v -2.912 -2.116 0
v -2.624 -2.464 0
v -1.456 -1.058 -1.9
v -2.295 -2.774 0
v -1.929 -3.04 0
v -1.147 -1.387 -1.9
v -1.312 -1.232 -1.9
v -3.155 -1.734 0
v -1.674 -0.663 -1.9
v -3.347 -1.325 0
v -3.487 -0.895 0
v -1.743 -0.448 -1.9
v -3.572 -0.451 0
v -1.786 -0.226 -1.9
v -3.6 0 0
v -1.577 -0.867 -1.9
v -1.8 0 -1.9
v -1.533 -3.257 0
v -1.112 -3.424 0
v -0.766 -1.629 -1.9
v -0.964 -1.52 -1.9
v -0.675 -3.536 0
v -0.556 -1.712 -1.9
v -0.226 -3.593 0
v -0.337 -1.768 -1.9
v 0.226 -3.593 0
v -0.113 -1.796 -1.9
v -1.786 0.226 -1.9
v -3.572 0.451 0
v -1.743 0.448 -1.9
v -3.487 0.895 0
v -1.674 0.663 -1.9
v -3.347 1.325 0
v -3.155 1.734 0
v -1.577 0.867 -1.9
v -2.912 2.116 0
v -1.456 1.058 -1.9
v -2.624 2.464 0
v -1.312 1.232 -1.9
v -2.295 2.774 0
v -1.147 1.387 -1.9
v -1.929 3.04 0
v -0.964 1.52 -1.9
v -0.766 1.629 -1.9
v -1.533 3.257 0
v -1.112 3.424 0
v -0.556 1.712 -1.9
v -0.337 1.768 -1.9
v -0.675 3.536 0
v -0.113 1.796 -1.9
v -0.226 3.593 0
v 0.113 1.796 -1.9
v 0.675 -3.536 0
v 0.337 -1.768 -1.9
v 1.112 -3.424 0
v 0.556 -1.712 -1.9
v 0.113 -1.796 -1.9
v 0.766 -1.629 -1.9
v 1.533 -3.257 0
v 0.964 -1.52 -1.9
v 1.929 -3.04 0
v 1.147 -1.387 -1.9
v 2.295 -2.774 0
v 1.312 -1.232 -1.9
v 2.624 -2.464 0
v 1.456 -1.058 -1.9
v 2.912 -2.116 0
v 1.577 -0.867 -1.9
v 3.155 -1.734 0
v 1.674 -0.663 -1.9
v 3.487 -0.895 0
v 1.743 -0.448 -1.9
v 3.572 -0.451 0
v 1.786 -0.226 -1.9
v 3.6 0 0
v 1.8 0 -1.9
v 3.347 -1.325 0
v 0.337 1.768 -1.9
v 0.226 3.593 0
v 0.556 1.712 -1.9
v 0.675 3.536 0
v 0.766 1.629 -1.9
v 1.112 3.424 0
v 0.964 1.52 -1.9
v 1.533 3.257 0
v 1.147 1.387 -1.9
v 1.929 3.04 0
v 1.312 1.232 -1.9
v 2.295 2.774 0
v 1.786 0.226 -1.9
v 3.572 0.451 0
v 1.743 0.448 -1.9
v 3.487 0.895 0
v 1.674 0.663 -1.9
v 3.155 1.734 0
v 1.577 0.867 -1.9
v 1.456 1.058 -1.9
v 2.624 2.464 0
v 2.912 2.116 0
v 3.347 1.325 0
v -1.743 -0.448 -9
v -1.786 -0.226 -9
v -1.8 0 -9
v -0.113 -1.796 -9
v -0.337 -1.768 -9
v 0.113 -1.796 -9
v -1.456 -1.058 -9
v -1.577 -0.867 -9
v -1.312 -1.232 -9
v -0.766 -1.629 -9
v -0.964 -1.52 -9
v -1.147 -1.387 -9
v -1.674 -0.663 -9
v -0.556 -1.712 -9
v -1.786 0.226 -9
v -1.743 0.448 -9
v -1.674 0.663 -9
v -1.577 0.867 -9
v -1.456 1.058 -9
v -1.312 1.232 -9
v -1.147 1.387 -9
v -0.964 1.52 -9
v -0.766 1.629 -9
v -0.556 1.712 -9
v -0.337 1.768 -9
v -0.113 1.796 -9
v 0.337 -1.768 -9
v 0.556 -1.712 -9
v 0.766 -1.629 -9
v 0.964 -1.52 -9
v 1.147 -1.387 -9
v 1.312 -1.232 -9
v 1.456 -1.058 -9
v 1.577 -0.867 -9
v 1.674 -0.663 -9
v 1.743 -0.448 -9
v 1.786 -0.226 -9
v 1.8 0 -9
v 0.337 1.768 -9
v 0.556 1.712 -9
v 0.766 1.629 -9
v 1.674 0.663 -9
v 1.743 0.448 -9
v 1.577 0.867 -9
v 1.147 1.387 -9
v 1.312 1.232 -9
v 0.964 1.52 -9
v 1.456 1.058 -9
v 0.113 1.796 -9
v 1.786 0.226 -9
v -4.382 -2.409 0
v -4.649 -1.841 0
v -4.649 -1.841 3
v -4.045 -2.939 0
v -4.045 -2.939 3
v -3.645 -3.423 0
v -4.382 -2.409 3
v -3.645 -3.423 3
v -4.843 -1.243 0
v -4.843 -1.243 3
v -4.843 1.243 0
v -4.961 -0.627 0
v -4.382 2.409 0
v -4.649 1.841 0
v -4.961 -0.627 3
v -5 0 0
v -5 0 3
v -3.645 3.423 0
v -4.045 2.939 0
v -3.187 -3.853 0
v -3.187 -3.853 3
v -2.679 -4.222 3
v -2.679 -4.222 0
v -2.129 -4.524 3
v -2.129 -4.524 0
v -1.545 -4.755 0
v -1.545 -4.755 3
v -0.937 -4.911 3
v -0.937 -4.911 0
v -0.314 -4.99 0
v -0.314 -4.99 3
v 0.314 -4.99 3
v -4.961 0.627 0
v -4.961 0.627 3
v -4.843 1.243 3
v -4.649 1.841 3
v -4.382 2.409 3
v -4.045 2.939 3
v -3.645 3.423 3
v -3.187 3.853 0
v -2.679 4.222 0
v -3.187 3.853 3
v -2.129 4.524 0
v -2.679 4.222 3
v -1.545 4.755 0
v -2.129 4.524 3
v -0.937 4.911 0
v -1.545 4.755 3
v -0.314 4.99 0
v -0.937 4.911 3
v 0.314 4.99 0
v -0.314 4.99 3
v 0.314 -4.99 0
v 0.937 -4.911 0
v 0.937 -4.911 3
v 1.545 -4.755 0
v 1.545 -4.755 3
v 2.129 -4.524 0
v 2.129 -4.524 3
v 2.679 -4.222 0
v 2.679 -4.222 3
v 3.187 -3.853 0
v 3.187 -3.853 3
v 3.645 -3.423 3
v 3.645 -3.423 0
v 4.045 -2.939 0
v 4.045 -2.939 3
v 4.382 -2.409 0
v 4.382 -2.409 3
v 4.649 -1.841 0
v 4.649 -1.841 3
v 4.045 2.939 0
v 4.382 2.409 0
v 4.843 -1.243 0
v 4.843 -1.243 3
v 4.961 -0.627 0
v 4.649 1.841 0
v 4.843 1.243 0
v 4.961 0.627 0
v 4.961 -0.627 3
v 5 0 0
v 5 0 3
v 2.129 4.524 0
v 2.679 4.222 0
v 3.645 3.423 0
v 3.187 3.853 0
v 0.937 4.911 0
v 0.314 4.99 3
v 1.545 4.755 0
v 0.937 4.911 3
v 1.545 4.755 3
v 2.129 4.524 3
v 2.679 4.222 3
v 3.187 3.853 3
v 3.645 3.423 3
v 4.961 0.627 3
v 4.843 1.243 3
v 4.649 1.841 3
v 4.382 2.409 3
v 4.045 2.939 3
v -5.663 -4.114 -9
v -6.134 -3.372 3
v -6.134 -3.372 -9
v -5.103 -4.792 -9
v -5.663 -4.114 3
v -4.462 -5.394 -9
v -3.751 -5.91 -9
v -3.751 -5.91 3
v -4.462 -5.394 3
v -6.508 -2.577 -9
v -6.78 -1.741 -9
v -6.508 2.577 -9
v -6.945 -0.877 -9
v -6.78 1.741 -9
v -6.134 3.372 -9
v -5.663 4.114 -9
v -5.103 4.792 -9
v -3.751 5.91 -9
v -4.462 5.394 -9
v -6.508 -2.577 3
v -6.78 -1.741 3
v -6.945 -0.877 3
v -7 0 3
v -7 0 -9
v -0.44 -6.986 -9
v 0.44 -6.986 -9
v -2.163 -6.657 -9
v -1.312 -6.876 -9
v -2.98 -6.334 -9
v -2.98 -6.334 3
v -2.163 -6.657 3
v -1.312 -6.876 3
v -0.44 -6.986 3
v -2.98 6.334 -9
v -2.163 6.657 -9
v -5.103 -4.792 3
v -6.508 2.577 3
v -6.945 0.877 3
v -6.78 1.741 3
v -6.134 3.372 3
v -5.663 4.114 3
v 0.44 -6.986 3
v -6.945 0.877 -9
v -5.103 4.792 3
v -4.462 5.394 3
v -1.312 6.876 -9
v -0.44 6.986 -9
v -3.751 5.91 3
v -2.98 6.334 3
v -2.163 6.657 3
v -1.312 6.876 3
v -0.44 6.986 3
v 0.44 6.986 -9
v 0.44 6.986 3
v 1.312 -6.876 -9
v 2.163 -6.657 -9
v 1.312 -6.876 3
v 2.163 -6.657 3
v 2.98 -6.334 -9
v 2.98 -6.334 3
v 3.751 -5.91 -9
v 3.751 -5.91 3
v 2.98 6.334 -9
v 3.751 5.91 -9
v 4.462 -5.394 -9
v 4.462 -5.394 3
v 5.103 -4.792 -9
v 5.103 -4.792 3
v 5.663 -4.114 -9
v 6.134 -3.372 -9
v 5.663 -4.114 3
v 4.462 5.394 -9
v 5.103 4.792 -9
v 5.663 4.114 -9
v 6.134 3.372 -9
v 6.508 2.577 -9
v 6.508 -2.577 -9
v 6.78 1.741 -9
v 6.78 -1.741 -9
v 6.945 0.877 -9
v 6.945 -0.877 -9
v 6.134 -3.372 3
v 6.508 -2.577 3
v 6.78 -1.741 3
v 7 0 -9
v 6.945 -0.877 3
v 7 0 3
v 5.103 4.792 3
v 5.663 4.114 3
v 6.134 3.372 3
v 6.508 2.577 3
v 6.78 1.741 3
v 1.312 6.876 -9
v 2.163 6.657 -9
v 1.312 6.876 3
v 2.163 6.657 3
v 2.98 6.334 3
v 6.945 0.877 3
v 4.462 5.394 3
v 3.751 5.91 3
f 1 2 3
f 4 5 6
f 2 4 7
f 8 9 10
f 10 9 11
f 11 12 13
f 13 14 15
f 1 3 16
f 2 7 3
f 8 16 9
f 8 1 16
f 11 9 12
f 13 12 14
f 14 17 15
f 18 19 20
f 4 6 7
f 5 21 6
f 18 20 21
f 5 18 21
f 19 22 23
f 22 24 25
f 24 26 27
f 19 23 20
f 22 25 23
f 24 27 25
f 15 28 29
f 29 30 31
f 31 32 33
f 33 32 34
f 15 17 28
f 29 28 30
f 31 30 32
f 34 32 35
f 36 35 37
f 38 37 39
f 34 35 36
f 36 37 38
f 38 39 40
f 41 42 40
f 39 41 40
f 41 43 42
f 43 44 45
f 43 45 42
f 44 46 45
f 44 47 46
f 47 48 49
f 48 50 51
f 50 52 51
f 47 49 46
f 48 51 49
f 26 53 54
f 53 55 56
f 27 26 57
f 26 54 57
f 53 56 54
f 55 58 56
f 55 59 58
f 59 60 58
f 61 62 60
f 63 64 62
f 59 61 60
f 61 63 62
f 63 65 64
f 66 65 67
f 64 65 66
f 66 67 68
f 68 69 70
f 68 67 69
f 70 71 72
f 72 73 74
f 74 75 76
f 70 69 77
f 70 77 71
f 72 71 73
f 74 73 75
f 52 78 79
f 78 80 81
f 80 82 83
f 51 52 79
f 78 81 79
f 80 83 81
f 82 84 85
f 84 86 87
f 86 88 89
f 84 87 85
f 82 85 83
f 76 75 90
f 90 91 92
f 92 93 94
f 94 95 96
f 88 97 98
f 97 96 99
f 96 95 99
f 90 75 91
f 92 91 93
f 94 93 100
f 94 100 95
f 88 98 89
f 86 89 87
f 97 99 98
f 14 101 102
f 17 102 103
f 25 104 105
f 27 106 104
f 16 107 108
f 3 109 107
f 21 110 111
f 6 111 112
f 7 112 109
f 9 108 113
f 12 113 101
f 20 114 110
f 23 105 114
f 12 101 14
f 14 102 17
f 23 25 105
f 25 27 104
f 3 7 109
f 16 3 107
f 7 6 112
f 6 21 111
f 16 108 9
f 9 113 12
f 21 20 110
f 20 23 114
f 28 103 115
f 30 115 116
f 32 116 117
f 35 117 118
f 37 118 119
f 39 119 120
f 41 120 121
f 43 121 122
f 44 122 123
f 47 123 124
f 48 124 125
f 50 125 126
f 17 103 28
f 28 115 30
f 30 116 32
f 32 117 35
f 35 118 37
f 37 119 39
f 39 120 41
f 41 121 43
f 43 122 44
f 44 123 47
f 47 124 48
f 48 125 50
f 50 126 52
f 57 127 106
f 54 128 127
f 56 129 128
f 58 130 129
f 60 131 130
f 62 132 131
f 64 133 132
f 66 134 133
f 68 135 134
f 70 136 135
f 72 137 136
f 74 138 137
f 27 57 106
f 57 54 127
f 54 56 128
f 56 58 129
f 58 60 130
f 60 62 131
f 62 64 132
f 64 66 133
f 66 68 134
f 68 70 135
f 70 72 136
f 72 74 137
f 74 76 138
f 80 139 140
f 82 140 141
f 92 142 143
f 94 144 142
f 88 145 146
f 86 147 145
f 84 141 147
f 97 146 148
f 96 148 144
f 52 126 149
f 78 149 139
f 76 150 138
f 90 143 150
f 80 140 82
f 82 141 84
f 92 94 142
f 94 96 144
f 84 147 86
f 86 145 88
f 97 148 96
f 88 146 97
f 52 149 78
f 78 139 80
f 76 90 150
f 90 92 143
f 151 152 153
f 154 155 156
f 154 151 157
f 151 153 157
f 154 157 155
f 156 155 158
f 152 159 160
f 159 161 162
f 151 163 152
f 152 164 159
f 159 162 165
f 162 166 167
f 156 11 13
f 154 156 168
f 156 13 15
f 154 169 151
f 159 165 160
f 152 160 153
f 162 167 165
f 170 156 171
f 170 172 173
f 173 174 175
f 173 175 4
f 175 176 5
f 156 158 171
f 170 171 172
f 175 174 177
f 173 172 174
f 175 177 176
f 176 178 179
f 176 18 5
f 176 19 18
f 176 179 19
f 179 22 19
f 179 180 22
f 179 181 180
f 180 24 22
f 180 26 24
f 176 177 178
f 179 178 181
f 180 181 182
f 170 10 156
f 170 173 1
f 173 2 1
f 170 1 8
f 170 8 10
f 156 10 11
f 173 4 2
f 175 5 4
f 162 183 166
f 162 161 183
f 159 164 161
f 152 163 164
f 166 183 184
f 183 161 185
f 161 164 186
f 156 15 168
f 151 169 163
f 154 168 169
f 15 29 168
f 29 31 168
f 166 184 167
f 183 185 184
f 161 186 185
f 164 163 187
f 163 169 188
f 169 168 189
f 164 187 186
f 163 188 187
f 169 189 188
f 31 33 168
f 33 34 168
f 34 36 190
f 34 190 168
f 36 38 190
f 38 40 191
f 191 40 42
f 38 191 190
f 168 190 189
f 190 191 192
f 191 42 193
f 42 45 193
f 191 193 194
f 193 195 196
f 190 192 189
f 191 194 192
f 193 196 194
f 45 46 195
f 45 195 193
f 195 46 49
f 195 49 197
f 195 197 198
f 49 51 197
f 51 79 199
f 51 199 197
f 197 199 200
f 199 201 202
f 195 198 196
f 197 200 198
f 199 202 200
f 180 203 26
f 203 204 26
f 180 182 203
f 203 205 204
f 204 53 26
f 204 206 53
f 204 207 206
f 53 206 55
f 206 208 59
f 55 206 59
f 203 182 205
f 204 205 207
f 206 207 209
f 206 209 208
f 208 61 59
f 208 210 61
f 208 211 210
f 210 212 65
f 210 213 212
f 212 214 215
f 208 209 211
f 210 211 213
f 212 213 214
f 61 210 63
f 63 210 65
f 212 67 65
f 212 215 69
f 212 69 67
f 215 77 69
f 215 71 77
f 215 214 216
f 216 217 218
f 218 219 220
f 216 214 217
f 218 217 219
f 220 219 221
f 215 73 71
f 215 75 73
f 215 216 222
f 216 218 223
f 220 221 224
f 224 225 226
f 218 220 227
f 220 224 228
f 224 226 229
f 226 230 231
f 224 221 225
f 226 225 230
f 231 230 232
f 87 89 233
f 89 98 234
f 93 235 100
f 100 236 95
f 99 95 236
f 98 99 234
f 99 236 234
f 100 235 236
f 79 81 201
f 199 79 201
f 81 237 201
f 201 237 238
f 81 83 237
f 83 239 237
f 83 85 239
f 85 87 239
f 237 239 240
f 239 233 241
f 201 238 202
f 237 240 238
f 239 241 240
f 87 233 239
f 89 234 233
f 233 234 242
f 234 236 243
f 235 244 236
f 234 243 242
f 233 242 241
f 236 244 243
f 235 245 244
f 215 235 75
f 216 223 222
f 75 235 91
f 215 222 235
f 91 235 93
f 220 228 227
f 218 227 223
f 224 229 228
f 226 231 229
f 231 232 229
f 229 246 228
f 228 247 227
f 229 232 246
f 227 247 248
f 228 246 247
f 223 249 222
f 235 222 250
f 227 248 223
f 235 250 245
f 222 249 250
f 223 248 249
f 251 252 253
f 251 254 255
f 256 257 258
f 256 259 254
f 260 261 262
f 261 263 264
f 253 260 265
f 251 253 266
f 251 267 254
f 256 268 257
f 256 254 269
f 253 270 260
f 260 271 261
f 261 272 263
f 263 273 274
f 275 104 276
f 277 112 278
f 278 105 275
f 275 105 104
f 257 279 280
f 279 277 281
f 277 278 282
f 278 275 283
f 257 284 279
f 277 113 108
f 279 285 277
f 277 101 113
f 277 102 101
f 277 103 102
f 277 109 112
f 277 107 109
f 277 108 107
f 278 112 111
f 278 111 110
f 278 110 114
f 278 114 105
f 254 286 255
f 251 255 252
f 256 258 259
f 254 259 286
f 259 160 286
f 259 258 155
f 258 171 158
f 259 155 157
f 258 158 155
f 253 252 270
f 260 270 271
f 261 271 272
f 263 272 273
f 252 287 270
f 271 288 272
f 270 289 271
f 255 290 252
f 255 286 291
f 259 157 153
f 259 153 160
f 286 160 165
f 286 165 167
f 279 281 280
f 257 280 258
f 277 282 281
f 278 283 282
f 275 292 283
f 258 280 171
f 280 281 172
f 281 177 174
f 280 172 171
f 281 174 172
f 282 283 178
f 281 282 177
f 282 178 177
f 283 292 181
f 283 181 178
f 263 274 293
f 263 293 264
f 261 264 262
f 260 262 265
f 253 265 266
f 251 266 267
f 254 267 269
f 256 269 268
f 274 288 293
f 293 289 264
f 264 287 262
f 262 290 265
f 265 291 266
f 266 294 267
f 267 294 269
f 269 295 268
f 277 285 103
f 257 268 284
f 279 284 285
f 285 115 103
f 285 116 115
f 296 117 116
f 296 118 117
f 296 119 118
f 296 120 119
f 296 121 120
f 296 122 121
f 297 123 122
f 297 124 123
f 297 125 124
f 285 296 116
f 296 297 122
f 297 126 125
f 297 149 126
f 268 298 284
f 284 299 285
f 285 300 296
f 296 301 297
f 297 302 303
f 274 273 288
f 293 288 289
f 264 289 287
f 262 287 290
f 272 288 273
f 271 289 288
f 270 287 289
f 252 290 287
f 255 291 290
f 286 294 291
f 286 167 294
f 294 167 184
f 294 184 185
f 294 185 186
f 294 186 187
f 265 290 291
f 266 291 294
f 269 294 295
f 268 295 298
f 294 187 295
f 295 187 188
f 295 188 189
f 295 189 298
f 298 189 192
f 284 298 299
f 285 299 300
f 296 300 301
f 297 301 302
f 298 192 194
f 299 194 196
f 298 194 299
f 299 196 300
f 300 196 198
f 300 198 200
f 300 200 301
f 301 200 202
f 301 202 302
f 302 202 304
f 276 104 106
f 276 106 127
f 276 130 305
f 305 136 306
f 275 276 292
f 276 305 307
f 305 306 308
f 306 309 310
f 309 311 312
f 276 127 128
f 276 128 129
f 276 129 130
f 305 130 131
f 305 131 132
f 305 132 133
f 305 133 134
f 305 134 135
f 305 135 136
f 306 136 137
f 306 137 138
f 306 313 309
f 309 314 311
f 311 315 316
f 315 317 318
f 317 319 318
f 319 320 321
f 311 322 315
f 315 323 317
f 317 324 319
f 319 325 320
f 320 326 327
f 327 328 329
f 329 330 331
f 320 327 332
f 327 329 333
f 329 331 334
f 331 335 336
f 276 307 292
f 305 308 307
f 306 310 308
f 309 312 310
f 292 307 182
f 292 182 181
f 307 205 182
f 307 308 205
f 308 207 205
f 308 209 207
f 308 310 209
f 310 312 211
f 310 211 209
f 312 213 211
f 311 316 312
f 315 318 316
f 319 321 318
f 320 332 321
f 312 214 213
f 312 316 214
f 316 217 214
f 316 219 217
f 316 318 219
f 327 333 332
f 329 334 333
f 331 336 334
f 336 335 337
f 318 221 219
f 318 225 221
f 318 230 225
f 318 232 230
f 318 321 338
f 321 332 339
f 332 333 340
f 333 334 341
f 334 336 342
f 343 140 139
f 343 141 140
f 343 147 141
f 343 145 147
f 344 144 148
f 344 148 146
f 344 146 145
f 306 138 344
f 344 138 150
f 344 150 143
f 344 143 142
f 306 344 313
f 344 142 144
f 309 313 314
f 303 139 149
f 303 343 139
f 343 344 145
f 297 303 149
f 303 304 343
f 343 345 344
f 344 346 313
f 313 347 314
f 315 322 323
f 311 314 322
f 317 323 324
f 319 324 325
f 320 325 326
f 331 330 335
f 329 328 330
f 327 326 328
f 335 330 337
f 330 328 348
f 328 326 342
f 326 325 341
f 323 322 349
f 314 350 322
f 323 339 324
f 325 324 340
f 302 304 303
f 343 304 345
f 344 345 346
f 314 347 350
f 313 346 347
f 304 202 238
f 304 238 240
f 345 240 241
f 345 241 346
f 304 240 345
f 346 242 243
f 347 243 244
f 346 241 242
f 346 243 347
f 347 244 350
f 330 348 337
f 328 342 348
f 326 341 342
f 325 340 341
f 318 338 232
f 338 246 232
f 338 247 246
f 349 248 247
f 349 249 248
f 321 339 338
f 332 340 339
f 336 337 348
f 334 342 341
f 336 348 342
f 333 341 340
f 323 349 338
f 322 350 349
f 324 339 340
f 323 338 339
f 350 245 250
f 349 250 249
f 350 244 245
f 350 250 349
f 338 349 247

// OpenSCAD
$fn = 50;


difference() {
	union() {
		translate(v = [0, 0, -9.0000000000]) {
			cylinder(h = 12, r = 7.0000000000);
		}
	}
	union() {
		translate(v = [0, 0, 0]) {
			rotate(a = [0, 0, 0]) {
				difference() {
					union() {
						translate(v = [0, 0, -12.0000000000]) {
							cylinder(h = 12, r = 1.5000000000);
						}
						translate(v = [0, 0, -1.9000000000]) {
							cylinder(h = 1.9000000000, r1 = 1.8000000000, r2 = 3.6000000000);
						}
						translate(v = [0, 0, -12.0000000000]) {
							cylinder(h = 12, r = 1.8000000000);
						}
						translate(v = [0, 0, -12.0000000000]) {
							cylinder(h = 12, r = 1.5000000000);
						}
					}
					union();
				}
			}
		}
		#cylinder(h = 3, r = 5.0000000000);
	}
}
